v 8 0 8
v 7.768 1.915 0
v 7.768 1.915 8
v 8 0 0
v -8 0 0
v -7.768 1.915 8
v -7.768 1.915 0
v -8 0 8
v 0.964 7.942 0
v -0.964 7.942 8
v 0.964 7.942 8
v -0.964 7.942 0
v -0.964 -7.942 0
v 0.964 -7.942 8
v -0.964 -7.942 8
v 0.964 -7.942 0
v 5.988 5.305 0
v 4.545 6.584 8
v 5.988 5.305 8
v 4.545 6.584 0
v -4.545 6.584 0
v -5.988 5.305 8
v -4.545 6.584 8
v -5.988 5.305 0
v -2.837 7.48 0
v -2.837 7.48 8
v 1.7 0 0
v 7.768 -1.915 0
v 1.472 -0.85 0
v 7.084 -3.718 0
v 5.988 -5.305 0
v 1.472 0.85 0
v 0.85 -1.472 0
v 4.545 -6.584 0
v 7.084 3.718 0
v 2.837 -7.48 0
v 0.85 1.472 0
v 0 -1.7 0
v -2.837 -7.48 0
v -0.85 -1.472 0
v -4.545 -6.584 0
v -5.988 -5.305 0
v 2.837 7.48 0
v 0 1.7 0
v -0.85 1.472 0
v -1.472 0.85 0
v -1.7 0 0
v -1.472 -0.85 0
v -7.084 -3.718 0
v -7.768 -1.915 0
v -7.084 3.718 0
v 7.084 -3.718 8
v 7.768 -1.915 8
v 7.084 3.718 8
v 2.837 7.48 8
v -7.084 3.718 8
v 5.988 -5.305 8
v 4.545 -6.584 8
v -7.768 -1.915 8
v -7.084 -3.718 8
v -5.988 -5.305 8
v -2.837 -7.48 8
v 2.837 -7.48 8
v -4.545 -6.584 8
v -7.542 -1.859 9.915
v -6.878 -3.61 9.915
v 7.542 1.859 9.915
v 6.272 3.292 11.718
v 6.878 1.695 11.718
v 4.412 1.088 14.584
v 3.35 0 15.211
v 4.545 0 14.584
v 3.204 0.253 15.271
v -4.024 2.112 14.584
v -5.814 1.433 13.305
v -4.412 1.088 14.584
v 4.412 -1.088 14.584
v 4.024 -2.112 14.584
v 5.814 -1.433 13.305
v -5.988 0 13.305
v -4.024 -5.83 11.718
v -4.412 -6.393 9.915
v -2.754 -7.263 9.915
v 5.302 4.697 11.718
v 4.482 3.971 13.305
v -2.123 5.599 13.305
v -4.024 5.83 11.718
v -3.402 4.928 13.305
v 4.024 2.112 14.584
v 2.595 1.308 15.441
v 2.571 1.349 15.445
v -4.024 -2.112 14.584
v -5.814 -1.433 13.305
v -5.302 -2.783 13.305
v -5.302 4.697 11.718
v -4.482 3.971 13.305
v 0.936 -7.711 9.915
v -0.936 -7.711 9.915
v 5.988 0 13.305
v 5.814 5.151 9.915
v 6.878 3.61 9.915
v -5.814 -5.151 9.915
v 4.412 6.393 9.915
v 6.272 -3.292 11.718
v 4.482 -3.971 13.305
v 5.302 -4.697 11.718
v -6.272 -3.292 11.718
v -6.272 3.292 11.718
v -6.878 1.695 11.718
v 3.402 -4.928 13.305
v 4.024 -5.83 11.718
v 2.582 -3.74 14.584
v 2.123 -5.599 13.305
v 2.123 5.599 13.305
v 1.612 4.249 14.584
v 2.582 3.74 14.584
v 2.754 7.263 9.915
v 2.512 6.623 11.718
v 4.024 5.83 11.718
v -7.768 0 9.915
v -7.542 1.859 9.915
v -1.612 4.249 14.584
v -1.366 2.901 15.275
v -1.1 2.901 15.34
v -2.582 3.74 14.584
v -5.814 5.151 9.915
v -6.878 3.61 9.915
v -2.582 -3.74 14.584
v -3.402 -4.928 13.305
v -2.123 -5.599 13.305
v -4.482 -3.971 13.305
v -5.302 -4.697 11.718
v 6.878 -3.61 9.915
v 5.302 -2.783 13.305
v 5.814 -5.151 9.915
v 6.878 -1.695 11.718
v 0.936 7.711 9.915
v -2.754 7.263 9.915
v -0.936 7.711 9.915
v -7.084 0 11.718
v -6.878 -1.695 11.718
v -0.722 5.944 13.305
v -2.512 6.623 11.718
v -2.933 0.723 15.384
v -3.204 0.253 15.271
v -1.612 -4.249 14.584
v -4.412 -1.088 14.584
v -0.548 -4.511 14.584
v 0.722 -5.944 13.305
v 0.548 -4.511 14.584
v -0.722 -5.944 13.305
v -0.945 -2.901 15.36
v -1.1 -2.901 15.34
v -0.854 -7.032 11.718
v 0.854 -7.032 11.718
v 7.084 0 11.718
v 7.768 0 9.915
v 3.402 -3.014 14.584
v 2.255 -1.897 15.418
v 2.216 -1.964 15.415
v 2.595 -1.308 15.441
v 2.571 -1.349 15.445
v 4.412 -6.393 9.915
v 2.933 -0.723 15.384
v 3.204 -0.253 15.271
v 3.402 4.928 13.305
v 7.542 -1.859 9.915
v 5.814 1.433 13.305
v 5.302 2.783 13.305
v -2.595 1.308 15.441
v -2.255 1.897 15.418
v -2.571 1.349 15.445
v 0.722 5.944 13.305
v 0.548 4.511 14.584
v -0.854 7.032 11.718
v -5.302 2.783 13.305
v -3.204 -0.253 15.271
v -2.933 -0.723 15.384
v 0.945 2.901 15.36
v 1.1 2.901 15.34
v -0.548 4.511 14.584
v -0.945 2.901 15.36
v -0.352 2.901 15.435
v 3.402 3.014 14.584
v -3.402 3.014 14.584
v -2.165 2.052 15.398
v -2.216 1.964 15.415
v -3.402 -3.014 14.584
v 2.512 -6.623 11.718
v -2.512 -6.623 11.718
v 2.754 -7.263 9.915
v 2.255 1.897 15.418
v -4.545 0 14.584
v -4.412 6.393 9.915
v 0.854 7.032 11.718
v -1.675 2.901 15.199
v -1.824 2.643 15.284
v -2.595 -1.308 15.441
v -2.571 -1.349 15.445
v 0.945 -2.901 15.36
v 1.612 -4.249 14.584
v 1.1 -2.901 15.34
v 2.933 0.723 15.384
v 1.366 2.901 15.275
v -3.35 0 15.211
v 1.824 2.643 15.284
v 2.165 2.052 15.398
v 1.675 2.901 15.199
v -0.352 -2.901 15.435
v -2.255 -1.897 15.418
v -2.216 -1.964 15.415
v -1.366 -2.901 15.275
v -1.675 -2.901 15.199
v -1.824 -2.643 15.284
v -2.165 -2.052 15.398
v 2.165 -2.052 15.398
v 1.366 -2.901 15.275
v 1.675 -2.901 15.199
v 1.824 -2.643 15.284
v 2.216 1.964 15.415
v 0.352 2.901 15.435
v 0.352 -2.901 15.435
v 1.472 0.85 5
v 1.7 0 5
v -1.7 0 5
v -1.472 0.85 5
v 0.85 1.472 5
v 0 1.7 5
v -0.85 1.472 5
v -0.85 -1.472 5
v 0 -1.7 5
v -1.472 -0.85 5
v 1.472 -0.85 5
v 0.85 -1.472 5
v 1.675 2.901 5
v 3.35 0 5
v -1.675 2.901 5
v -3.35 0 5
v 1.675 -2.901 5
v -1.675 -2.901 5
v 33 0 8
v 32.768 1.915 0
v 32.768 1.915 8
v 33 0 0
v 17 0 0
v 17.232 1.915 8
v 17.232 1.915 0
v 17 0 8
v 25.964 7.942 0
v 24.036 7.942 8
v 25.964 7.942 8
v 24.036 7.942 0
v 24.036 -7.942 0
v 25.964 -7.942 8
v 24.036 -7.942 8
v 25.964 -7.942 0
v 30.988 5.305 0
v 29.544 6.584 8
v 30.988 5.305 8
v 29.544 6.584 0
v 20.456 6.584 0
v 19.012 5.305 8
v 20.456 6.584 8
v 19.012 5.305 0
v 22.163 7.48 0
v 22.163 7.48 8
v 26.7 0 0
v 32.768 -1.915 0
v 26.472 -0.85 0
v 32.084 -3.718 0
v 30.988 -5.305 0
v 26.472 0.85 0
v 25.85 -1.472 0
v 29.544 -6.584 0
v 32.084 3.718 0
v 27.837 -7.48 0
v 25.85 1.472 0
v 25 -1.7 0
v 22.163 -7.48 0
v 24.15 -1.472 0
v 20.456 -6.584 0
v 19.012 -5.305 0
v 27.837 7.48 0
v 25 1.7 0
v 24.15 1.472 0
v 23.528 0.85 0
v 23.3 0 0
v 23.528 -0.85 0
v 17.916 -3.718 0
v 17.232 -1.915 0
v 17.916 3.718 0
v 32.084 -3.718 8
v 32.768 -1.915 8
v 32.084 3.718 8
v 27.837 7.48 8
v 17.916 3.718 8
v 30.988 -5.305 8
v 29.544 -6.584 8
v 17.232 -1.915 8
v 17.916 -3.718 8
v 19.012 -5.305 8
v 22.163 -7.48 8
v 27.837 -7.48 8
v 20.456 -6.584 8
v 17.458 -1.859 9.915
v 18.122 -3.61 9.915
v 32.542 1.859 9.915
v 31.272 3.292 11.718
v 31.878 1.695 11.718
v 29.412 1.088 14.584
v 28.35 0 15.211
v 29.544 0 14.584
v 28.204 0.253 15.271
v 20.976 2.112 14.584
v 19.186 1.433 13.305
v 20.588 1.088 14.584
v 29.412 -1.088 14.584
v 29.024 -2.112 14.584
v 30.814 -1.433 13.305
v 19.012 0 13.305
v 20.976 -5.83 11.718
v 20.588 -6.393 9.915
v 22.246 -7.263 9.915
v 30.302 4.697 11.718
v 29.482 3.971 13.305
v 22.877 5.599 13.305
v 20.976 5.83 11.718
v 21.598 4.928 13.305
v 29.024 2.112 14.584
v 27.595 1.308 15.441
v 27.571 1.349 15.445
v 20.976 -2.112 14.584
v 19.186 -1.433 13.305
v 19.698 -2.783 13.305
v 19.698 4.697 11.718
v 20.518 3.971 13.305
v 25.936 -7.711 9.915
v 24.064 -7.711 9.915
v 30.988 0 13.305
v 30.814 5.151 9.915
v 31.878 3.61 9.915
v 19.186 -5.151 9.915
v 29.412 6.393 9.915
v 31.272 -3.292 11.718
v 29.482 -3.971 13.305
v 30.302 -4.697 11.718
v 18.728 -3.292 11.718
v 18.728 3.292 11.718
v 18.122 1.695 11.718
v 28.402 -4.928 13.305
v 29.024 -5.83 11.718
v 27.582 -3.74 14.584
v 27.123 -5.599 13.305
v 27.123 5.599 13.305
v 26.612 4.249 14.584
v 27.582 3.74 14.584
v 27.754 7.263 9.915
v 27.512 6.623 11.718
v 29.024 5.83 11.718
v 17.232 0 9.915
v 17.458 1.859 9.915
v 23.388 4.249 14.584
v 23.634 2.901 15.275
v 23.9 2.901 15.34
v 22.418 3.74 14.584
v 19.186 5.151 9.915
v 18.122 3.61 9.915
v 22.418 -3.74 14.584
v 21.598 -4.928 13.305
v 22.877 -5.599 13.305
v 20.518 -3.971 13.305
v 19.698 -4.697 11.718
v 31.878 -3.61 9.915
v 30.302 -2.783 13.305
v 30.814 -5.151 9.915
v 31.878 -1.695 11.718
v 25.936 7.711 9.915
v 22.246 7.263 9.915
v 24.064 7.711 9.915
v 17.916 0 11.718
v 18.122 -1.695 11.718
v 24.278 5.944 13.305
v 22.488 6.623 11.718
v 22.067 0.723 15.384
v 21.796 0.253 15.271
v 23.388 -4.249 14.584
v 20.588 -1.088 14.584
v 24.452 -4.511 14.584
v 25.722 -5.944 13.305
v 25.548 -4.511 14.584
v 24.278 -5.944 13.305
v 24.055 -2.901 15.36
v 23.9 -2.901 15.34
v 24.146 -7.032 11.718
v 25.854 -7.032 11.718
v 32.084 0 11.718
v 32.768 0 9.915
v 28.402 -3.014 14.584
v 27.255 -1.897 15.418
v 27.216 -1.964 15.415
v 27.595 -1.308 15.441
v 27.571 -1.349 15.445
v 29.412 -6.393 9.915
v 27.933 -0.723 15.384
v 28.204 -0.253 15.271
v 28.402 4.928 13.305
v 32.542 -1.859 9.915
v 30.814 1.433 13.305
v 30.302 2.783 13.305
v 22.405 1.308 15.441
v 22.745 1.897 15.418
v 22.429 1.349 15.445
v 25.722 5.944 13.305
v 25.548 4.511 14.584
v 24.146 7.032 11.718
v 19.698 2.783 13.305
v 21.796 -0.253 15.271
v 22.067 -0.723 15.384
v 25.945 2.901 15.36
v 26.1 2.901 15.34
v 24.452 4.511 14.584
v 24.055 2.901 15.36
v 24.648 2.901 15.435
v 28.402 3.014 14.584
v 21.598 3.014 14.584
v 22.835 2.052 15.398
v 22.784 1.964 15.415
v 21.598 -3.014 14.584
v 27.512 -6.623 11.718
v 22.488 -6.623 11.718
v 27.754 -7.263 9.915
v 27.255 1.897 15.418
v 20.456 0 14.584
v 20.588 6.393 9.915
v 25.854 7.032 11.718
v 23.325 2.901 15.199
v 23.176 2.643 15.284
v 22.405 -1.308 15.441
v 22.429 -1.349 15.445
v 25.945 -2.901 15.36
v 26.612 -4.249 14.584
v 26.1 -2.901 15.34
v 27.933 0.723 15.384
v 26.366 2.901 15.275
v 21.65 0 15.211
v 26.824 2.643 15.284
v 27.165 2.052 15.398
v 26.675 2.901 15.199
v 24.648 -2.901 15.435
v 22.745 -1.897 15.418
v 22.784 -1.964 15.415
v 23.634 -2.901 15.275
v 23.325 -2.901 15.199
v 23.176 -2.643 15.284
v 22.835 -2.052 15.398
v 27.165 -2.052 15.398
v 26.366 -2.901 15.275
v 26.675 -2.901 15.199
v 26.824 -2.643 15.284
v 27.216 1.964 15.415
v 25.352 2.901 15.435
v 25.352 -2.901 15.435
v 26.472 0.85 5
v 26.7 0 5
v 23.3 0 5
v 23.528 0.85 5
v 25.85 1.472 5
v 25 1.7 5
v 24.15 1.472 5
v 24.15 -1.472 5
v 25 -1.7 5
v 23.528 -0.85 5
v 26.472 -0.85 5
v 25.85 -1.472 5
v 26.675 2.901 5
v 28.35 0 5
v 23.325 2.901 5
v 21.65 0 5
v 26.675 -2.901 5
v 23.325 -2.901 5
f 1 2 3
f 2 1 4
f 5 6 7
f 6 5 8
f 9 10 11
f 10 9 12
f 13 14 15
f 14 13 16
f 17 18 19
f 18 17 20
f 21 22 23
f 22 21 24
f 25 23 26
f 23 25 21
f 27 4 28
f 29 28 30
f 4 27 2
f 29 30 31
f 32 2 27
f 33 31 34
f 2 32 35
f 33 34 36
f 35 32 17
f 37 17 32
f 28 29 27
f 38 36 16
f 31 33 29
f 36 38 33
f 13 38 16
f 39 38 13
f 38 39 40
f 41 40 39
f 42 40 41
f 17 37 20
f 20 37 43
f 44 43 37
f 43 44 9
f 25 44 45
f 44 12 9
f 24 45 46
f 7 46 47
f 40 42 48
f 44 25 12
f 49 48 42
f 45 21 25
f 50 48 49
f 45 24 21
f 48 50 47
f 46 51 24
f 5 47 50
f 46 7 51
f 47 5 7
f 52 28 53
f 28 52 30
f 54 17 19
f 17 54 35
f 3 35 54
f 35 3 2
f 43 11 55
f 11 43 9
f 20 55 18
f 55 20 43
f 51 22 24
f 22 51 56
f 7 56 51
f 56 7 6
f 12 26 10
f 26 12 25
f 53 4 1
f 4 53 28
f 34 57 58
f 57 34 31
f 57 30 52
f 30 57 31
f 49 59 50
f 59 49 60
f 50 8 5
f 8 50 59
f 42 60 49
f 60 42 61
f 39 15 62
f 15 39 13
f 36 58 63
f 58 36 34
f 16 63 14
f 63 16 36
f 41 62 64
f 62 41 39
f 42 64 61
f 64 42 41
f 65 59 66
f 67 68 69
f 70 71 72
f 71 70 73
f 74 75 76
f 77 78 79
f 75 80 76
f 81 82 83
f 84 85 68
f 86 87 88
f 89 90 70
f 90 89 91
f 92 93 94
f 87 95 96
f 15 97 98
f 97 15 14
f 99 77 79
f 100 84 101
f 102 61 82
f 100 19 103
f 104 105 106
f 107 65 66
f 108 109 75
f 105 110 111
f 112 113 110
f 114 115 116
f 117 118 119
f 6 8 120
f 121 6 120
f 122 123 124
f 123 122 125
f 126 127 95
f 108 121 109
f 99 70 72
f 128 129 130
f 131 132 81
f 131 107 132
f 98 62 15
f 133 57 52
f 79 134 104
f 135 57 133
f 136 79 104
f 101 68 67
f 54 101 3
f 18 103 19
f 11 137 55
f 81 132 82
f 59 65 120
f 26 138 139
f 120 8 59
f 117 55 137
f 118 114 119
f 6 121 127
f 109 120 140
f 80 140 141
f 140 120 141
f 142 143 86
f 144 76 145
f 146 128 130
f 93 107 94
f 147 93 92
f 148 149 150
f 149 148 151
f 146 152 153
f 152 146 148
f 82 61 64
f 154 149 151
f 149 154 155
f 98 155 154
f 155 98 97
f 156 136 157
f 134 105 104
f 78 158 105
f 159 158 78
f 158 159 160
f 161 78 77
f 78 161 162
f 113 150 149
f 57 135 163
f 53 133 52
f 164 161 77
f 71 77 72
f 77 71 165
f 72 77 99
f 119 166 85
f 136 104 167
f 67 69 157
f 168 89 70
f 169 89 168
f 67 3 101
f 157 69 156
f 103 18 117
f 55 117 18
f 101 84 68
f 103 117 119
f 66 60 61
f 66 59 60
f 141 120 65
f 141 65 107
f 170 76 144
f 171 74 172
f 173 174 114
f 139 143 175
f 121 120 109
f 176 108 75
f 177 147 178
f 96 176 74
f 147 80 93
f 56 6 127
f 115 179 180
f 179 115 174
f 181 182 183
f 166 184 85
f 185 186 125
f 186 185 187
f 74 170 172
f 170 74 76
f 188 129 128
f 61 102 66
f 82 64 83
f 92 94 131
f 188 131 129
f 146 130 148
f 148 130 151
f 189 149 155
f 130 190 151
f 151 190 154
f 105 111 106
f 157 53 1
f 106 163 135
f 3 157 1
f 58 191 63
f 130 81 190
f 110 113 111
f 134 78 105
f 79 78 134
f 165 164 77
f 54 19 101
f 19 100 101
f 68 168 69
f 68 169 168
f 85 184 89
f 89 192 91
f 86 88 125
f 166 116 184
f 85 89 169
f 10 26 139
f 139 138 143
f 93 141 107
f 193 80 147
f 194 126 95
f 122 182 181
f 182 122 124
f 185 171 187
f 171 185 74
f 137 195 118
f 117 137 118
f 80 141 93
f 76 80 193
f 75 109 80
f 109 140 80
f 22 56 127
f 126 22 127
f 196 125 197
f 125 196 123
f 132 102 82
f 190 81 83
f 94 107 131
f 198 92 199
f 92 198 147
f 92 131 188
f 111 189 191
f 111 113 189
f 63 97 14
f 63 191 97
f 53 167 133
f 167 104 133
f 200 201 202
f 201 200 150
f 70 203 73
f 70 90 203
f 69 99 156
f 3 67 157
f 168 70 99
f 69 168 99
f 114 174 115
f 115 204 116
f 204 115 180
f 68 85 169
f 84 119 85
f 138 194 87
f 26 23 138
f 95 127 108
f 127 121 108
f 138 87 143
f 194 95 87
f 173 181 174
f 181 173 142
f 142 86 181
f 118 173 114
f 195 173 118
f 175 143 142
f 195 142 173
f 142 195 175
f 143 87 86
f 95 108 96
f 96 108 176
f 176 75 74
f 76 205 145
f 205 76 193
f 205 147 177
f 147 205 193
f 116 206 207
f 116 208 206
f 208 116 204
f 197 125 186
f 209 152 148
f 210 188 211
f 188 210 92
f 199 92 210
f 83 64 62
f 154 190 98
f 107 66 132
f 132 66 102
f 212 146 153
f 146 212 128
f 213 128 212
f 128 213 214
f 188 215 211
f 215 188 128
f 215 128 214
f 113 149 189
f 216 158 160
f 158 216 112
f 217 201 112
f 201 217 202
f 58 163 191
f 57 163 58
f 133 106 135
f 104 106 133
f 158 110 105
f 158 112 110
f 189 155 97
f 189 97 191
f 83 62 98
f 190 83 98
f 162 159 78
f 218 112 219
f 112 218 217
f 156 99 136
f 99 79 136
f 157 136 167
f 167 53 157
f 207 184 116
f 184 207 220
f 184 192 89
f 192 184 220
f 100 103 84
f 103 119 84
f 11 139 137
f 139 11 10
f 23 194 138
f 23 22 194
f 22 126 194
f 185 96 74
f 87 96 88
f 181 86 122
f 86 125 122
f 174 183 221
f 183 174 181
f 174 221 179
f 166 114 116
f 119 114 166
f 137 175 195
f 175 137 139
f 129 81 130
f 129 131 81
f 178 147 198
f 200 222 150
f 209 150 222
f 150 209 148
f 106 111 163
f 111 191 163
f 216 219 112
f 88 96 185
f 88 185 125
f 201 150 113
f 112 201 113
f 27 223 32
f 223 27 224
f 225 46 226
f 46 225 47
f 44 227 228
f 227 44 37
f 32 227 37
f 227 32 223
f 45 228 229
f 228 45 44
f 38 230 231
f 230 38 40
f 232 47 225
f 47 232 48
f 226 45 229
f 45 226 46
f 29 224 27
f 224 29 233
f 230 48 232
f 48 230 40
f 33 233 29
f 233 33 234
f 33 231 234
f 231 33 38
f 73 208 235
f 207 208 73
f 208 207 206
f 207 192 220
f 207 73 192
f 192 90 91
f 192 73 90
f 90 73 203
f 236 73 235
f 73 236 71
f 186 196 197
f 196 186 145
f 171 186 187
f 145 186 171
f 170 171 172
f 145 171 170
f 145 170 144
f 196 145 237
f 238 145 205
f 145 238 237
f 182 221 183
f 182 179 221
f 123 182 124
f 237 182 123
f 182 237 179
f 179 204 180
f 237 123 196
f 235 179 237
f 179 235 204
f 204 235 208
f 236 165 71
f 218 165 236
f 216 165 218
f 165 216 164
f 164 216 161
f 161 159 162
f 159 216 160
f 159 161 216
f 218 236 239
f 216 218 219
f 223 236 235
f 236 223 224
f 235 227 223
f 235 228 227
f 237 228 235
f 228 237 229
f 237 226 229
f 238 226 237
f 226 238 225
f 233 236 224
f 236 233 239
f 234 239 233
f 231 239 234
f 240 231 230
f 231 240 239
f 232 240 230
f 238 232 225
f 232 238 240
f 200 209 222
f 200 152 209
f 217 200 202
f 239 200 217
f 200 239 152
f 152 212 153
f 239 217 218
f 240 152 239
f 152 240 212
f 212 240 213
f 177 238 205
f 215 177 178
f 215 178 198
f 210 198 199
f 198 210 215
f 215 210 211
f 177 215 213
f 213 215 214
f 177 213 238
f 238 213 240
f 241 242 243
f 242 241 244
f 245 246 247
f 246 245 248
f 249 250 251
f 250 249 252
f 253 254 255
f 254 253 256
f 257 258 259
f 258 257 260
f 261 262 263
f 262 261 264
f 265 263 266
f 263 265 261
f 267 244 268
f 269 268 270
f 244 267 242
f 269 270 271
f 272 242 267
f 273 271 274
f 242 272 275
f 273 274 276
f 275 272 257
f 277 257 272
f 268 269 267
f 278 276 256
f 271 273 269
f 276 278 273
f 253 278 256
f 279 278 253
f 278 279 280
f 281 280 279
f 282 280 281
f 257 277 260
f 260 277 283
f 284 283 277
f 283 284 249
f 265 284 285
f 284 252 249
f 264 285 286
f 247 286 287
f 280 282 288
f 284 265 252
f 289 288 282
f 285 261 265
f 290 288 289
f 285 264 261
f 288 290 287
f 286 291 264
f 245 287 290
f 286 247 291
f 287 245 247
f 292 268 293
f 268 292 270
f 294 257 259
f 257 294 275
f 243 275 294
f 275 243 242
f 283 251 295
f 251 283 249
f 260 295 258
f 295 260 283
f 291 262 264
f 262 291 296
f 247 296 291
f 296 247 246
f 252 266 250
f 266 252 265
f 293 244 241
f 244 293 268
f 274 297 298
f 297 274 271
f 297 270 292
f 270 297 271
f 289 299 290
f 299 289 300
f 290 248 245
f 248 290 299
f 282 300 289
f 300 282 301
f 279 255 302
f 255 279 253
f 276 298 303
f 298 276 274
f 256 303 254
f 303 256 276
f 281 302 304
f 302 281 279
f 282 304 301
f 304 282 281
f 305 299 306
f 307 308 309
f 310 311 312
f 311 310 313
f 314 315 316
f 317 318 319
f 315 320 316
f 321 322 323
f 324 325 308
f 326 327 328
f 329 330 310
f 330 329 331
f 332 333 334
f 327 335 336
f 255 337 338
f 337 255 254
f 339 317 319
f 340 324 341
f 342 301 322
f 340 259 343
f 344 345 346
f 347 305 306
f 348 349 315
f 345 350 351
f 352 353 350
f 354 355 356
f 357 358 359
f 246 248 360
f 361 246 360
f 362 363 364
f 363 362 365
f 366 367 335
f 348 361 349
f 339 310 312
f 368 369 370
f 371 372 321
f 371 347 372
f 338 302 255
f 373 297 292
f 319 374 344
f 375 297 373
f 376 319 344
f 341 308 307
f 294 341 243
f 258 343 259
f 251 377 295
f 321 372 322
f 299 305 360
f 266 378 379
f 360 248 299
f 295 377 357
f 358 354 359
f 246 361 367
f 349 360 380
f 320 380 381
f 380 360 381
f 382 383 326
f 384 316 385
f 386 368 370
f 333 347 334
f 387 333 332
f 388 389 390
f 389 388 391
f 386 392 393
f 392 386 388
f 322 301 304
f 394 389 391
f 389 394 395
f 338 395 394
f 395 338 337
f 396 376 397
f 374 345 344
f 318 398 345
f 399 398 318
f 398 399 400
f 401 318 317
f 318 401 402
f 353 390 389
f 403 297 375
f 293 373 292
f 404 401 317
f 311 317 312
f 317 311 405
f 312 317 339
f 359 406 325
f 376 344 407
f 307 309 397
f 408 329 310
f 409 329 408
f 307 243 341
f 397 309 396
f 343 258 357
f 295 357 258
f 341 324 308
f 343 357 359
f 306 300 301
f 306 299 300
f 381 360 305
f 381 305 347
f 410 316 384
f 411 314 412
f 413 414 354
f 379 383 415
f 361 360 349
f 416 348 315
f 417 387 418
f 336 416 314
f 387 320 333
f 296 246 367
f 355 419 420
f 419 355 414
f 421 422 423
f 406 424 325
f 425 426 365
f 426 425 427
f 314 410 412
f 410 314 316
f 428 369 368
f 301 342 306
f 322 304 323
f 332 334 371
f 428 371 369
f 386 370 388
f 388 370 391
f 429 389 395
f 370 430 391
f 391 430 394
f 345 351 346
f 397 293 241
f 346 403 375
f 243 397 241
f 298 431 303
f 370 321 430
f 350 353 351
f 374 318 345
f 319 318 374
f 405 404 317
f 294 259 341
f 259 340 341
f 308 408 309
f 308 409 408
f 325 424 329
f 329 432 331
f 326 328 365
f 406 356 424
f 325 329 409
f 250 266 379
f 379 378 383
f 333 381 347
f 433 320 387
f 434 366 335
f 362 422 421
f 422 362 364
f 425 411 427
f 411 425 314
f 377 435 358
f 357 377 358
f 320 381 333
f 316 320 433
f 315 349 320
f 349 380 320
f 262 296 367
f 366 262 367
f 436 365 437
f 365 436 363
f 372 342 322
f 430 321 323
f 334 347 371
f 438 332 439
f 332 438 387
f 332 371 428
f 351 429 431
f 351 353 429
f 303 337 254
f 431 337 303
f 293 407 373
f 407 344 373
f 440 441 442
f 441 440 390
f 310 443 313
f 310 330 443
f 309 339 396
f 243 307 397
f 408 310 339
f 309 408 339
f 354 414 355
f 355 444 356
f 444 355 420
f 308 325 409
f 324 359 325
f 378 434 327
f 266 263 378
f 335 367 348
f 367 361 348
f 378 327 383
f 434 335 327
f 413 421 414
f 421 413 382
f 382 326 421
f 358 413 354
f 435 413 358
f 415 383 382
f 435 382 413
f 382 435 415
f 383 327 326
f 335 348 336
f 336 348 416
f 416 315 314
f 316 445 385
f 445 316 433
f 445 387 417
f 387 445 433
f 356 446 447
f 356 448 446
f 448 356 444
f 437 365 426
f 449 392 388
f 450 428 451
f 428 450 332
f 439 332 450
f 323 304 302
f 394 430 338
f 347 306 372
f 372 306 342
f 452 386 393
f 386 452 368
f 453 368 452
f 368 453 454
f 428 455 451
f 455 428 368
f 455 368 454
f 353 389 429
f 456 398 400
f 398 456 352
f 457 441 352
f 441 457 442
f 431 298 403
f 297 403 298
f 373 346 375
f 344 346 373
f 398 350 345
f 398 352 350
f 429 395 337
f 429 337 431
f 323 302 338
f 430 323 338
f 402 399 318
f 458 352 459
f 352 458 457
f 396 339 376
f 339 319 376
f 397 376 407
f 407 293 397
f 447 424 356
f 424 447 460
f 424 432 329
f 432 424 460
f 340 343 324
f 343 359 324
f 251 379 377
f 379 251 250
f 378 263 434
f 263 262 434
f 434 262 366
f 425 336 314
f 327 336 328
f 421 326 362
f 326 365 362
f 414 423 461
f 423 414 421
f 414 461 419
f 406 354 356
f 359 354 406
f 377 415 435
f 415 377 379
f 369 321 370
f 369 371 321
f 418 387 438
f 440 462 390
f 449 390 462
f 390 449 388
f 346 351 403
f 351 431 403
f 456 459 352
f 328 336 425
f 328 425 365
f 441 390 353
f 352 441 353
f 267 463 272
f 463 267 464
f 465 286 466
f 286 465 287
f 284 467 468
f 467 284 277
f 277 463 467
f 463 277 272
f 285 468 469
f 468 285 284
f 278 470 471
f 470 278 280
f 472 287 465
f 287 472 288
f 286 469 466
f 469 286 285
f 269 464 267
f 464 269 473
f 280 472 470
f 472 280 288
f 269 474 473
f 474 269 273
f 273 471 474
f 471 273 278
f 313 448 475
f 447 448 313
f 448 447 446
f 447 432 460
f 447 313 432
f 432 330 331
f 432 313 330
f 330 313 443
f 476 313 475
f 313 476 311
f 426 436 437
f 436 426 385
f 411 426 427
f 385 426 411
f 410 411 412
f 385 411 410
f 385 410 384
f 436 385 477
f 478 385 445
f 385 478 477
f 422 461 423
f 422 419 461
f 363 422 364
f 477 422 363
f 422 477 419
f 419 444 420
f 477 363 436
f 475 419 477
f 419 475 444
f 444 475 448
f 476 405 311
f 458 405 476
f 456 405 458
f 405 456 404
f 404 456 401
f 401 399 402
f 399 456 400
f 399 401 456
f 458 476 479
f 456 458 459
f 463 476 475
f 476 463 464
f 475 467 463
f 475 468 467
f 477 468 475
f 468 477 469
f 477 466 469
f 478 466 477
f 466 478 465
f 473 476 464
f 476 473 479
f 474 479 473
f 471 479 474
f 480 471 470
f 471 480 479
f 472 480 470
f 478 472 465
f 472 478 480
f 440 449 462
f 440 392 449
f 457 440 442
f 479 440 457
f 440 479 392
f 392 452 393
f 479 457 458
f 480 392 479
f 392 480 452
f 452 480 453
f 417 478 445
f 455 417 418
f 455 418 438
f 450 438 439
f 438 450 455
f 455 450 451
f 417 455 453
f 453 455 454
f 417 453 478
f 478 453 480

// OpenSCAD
//----- Charnière du panneau
chw = 70; // W: largeur de la charnière coté panneau
chr = 8; // rayon charnière
axr = 3; // rayon axe pivot de charnière
jj = 0.4; // jeux charnière 

molz = chr; // molette Z
m3e = 6.3; 		// pointe a pointe
m3r = m3e/2; 	// rayon pointe


module molette() difference(){
	union(){
		cylinder(r=chr, h=molz);
		translate([0,0,molz]) sphere(r=chr);
	}
	translate([0,0,-1]) cylinder(r=1.7, h=molz+chr+2, $fn=4*3);
	translate([0,0,5]) cylinder(r=m3r+0.2, h=molz+chr+2, $fn=6);
}

molette();
translate([25,0,0]) molette();
